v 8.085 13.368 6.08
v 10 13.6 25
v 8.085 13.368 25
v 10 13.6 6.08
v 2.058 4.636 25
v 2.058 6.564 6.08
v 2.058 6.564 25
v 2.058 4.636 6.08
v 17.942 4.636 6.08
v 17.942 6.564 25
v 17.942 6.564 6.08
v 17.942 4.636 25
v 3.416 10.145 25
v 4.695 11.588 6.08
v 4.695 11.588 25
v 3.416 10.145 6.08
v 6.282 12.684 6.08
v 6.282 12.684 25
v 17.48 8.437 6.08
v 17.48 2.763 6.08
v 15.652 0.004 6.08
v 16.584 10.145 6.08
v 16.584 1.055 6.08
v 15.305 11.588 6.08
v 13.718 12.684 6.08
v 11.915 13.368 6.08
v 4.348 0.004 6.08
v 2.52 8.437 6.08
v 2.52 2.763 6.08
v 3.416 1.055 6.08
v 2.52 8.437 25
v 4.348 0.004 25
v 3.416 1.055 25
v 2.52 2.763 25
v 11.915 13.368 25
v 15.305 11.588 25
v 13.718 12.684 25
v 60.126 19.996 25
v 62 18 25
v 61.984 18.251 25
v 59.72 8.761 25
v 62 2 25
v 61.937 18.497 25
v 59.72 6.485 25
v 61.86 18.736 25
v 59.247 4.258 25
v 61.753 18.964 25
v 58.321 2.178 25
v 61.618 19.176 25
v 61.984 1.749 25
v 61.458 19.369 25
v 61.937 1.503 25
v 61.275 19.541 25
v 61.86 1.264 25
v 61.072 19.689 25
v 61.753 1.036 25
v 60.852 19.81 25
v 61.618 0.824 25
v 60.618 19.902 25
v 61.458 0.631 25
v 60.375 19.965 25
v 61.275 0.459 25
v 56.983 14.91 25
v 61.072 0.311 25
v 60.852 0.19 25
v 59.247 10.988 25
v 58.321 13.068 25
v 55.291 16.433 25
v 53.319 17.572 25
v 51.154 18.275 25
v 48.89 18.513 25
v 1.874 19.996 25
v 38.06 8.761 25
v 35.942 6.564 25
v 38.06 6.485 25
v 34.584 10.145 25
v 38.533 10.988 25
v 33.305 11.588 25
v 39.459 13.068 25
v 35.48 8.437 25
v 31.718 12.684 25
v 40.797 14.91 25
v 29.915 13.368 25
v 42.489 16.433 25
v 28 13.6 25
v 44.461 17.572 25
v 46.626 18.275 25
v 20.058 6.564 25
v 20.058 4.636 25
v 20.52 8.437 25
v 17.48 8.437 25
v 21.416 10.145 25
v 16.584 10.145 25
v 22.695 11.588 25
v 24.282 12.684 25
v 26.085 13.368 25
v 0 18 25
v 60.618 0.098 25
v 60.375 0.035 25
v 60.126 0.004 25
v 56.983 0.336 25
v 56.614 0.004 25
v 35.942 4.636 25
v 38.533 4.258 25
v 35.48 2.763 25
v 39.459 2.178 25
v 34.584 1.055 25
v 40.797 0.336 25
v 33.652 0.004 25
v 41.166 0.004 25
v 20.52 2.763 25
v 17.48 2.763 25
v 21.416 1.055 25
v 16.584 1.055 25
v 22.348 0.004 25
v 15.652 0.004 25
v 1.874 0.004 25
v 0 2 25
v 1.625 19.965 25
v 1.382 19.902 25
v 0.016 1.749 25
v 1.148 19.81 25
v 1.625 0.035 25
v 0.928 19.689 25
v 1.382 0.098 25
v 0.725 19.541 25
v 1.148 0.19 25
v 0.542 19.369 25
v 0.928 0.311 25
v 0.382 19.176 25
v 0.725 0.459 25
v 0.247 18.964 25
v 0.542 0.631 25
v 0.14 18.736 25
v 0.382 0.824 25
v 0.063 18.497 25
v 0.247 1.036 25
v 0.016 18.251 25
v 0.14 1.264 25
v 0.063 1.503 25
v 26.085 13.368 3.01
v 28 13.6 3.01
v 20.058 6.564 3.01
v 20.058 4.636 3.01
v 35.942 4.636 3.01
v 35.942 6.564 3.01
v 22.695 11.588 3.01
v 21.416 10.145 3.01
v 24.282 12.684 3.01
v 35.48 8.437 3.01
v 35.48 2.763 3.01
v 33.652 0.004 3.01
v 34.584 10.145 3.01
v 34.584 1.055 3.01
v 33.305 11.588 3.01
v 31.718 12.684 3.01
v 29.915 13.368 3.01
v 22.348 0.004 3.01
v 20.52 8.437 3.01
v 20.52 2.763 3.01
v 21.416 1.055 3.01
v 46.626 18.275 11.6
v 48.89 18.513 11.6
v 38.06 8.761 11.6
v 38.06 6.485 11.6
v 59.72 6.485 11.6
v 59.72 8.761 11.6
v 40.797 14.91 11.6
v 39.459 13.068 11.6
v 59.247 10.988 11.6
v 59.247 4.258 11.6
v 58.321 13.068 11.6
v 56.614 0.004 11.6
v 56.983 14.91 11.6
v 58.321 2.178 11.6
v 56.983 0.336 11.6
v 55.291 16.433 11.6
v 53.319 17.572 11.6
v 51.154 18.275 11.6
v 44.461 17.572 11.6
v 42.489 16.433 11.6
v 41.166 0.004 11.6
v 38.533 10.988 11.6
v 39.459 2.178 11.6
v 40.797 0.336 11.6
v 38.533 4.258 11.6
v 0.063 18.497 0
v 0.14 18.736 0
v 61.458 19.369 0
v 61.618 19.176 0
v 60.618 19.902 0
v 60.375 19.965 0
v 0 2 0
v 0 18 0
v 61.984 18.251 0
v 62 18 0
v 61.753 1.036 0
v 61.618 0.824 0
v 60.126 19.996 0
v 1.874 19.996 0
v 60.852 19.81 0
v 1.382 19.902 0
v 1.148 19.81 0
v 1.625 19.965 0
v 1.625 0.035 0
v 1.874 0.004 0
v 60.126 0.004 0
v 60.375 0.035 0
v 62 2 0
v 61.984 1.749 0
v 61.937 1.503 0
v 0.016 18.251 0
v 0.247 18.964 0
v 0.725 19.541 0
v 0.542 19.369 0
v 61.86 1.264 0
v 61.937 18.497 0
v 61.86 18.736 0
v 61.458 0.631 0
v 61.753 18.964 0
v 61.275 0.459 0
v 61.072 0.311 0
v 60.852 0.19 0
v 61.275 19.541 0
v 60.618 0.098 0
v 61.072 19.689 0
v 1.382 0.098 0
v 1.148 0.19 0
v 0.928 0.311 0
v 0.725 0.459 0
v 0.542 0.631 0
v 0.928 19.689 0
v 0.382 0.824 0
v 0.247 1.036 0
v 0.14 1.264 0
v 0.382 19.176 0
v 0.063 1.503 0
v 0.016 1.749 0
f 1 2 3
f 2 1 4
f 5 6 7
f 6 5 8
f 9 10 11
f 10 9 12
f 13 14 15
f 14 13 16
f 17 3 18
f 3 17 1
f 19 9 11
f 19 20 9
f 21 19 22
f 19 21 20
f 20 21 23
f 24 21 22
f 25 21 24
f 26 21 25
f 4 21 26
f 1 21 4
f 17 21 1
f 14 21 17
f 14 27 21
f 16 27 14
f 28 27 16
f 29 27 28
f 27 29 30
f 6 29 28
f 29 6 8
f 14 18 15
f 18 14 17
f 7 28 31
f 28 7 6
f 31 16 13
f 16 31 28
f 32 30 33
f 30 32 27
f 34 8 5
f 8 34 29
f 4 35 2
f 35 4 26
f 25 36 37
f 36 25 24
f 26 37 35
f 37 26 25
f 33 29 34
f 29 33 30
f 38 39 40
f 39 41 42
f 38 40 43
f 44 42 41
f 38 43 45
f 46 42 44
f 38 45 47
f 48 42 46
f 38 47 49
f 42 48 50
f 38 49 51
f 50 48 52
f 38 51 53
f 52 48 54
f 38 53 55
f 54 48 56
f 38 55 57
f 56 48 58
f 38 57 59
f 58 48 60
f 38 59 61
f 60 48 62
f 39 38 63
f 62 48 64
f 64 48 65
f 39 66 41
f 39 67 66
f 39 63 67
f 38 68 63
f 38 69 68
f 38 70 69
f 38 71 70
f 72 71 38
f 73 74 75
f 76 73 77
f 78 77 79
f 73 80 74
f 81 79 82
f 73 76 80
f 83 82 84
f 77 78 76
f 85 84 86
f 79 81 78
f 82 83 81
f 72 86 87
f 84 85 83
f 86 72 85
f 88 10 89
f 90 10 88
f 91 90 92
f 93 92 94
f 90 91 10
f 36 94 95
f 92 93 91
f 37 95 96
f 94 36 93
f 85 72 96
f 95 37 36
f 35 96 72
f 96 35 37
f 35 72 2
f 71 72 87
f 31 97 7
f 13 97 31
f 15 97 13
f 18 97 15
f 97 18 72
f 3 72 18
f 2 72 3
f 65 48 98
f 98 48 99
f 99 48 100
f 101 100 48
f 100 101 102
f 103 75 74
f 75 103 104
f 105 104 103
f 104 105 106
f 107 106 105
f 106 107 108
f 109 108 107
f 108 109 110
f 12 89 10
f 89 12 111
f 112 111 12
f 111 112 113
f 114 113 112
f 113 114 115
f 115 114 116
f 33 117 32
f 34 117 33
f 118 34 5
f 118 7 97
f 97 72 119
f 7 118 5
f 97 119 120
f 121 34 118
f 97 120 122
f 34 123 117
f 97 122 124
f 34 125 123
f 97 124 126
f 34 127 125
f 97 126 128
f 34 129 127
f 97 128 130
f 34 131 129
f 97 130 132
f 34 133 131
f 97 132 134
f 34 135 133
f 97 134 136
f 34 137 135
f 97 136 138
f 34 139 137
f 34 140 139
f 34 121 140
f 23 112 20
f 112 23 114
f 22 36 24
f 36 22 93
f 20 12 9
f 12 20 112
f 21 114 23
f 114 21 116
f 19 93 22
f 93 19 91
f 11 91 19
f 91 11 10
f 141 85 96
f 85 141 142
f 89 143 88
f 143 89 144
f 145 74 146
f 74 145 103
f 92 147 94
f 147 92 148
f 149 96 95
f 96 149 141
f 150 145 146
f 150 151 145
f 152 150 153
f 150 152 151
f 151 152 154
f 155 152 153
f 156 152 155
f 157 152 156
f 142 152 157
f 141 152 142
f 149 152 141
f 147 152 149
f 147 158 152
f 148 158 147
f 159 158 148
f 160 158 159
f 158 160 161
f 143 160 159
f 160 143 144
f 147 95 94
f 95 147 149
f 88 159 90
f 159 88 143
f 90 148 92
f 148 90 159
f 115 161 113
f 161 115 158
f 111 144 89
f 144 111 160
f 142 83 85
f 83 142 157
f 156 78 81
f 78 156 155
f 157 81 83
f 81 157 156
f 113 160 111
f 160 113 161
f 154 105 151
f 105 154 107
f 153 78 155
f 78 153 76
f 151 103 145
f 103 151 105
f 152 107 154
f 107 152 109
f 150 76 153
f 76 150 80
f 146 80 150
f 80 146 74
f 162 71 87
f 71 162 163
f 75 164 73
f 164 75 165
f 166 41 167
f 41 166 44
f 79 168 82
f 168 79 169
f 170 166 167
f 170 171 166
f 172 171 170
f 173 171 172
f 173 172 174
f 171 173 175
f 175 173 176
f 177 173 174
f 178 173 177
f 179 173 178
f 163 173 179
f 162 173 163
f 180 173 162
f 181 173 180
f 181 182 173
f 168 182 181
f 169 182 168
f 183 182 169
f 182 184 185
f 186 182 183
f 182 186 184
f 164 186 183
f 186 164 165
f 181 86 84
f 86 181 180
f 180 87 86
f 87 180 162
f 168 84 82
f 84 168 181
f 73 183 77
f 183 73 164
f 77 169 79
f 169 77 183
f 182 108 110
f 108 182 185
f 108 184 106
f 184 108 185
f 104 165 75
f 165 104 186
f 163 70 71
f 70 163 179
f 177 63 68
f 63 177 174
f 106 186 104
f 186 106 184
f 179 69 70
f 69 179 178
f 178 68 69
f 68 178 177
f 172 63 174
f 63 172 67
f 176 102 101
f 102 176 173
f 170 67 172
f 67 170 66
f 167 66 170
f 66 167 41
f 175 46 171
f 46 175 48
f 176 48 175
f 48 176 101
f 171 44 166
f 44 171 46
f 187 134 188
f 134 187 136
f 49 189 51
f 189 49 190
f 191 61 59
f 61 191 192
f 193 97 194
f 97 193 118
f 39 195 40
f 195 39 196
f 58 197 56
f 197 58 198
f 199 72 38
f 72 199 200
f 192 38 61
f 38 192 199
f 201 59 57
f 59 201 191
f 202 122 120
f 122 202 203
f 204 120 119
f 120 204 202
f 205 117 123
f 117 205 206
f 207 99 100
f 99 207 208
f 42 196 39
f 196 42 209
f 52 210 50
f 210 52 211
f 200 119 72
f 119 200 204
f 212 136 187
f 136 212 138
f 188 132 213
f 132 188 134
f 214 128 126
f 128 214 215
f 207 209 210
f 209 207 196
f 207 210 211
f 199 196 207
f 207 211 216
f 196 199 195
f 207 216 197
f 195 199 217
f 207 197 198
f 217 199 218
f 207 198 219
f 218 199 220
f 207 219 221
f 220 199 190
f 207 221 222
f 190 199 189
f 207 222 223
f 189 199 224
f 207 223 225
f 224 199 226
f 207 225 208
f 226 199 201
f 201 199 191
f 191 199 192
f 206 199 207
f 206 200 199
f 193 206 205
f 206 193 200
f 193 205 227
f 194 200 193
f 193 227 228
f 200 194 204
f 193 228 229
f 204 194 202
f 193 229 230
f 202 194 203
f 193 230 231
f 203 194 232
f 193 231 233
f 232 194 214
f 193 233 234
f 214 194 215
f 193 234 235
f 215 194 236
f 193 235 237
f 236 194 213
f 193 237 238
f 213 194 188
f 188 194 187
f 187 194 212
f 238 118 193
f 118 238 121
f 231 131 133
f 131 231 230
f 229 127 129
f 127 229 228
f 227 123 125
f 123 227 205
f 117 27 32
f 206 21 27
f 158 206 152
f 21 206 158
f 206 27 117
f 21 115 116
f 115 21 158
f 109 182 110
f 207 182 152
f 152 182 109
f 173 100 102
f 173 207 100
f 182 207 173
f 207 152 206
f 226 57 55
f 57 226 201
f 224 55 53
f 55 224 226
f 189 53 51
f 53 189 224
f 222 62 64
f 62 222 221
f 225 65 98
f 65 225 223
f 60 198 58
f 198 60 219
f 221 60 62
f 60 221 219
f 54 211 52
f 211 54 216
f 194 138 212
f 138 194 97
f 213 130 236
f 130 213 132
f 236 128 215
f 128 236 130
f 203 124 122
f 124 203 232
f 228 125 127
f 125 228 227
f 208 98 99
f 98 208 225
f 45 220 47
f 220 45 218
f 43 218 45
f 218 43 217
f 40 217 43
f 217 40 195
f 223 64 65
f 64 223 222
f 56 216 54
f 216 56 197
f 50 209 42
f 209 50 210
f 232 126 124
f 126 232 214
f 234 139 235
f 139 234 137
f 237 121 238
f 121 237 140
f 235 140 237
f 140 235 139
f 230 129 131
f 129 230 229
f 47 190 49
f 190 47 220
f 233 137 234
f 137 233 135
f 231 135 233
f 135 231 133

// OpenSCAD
// file: CirclePileLib.scad
module LeftPile(totalHeight, singlePileHeight, singlePileDiameter, pileCount){
    pileHeight = (pileCount * singlePileHeight) + .5;
    offset = singlePileDiameter * .15;
    translate([singlePileDiameter/2 - offset, singlePileDiameter/2, totalHeight - pileHeight])
        cylinder(pileHeight, d=singlePileDiameter);
}

module RightPile(totalHeight, singlePileHeight, singlePileDiameter, pileCount){
    translate([0, singlePileDiameter, 0])
        rotate([0, 0, 180])
            LeftPile(totalHeight, singlePileHeight, singlePileDiameter, pileCount);
}

module BottomPile(totalHeight, singlePileHeight, singlePileDiameter, pileCount){
    translate([singlePileDiameter, 0, 0])
        rotate([0, 0, 90])
            LeftPile(totalHeight, singlePileHeight, singlePileDiameter, pileCount);
}

module TopPile(totalHeight, singlePileHeight, singlePileDiameter, pileCount){
        rotate([0, 0, 270])
            LeftPile(totalHeight, singlePileHeight, singlePileDiameter, pileCount);
}
// main file
length = 62;
width = 20;
height = 25;
wallThickness = 2;
floorThickness = 3;
widthDividers = 3;
lengthDividers = 1;
widthDividerToSkip = -1;

//Based on magnet size:
magnetBaseOuterDiameter = 18;
magnetBaseInnerDiameter = 15.4;
magnetHeight = 4.0;

woodenMarkerDiameter = 14.5 + 1.5;
woodenMarkerHeight = 3.07;
woodenMarkerCount1 = 6;
woodenMarkerCount2 = 7;

cardboardMarkerDiameter = 20.28 + 1.5;
cardboardMarkerHeight = 2.15;
cardboardMarkerCount = 6;

include<CirclePileLib.scad>;


difference(){
    union(){
            $fn=50;
            minkowski()
            {
              translate([2,2,0])
                cube([length-4, width-4, height - 1]);
              cylinder(r=2,h=1);
            }
        }

    translate([wallThickness, 0, 0]) {
        translate([0, 0, 0])
            BottomPile(height, woodenMarkerHeight, woodenMarkerDiameter, woodenMarkerCount1);
        translate([(wallThickness + woodenMarkerDiameter) * 1, 0, 0])
            BottomPile(height, woodenMarkerHeight, woodenMarkerDiameter, woodenMarkerCount2);
        translate([(wallThickness + woodenMarkerDiameter) * 2, 0, 0])
            BottomPile(height, cardboardMarkerHeight, cardboardMarkerDiameter, cardboardMarkerCount);
    }
    
}
